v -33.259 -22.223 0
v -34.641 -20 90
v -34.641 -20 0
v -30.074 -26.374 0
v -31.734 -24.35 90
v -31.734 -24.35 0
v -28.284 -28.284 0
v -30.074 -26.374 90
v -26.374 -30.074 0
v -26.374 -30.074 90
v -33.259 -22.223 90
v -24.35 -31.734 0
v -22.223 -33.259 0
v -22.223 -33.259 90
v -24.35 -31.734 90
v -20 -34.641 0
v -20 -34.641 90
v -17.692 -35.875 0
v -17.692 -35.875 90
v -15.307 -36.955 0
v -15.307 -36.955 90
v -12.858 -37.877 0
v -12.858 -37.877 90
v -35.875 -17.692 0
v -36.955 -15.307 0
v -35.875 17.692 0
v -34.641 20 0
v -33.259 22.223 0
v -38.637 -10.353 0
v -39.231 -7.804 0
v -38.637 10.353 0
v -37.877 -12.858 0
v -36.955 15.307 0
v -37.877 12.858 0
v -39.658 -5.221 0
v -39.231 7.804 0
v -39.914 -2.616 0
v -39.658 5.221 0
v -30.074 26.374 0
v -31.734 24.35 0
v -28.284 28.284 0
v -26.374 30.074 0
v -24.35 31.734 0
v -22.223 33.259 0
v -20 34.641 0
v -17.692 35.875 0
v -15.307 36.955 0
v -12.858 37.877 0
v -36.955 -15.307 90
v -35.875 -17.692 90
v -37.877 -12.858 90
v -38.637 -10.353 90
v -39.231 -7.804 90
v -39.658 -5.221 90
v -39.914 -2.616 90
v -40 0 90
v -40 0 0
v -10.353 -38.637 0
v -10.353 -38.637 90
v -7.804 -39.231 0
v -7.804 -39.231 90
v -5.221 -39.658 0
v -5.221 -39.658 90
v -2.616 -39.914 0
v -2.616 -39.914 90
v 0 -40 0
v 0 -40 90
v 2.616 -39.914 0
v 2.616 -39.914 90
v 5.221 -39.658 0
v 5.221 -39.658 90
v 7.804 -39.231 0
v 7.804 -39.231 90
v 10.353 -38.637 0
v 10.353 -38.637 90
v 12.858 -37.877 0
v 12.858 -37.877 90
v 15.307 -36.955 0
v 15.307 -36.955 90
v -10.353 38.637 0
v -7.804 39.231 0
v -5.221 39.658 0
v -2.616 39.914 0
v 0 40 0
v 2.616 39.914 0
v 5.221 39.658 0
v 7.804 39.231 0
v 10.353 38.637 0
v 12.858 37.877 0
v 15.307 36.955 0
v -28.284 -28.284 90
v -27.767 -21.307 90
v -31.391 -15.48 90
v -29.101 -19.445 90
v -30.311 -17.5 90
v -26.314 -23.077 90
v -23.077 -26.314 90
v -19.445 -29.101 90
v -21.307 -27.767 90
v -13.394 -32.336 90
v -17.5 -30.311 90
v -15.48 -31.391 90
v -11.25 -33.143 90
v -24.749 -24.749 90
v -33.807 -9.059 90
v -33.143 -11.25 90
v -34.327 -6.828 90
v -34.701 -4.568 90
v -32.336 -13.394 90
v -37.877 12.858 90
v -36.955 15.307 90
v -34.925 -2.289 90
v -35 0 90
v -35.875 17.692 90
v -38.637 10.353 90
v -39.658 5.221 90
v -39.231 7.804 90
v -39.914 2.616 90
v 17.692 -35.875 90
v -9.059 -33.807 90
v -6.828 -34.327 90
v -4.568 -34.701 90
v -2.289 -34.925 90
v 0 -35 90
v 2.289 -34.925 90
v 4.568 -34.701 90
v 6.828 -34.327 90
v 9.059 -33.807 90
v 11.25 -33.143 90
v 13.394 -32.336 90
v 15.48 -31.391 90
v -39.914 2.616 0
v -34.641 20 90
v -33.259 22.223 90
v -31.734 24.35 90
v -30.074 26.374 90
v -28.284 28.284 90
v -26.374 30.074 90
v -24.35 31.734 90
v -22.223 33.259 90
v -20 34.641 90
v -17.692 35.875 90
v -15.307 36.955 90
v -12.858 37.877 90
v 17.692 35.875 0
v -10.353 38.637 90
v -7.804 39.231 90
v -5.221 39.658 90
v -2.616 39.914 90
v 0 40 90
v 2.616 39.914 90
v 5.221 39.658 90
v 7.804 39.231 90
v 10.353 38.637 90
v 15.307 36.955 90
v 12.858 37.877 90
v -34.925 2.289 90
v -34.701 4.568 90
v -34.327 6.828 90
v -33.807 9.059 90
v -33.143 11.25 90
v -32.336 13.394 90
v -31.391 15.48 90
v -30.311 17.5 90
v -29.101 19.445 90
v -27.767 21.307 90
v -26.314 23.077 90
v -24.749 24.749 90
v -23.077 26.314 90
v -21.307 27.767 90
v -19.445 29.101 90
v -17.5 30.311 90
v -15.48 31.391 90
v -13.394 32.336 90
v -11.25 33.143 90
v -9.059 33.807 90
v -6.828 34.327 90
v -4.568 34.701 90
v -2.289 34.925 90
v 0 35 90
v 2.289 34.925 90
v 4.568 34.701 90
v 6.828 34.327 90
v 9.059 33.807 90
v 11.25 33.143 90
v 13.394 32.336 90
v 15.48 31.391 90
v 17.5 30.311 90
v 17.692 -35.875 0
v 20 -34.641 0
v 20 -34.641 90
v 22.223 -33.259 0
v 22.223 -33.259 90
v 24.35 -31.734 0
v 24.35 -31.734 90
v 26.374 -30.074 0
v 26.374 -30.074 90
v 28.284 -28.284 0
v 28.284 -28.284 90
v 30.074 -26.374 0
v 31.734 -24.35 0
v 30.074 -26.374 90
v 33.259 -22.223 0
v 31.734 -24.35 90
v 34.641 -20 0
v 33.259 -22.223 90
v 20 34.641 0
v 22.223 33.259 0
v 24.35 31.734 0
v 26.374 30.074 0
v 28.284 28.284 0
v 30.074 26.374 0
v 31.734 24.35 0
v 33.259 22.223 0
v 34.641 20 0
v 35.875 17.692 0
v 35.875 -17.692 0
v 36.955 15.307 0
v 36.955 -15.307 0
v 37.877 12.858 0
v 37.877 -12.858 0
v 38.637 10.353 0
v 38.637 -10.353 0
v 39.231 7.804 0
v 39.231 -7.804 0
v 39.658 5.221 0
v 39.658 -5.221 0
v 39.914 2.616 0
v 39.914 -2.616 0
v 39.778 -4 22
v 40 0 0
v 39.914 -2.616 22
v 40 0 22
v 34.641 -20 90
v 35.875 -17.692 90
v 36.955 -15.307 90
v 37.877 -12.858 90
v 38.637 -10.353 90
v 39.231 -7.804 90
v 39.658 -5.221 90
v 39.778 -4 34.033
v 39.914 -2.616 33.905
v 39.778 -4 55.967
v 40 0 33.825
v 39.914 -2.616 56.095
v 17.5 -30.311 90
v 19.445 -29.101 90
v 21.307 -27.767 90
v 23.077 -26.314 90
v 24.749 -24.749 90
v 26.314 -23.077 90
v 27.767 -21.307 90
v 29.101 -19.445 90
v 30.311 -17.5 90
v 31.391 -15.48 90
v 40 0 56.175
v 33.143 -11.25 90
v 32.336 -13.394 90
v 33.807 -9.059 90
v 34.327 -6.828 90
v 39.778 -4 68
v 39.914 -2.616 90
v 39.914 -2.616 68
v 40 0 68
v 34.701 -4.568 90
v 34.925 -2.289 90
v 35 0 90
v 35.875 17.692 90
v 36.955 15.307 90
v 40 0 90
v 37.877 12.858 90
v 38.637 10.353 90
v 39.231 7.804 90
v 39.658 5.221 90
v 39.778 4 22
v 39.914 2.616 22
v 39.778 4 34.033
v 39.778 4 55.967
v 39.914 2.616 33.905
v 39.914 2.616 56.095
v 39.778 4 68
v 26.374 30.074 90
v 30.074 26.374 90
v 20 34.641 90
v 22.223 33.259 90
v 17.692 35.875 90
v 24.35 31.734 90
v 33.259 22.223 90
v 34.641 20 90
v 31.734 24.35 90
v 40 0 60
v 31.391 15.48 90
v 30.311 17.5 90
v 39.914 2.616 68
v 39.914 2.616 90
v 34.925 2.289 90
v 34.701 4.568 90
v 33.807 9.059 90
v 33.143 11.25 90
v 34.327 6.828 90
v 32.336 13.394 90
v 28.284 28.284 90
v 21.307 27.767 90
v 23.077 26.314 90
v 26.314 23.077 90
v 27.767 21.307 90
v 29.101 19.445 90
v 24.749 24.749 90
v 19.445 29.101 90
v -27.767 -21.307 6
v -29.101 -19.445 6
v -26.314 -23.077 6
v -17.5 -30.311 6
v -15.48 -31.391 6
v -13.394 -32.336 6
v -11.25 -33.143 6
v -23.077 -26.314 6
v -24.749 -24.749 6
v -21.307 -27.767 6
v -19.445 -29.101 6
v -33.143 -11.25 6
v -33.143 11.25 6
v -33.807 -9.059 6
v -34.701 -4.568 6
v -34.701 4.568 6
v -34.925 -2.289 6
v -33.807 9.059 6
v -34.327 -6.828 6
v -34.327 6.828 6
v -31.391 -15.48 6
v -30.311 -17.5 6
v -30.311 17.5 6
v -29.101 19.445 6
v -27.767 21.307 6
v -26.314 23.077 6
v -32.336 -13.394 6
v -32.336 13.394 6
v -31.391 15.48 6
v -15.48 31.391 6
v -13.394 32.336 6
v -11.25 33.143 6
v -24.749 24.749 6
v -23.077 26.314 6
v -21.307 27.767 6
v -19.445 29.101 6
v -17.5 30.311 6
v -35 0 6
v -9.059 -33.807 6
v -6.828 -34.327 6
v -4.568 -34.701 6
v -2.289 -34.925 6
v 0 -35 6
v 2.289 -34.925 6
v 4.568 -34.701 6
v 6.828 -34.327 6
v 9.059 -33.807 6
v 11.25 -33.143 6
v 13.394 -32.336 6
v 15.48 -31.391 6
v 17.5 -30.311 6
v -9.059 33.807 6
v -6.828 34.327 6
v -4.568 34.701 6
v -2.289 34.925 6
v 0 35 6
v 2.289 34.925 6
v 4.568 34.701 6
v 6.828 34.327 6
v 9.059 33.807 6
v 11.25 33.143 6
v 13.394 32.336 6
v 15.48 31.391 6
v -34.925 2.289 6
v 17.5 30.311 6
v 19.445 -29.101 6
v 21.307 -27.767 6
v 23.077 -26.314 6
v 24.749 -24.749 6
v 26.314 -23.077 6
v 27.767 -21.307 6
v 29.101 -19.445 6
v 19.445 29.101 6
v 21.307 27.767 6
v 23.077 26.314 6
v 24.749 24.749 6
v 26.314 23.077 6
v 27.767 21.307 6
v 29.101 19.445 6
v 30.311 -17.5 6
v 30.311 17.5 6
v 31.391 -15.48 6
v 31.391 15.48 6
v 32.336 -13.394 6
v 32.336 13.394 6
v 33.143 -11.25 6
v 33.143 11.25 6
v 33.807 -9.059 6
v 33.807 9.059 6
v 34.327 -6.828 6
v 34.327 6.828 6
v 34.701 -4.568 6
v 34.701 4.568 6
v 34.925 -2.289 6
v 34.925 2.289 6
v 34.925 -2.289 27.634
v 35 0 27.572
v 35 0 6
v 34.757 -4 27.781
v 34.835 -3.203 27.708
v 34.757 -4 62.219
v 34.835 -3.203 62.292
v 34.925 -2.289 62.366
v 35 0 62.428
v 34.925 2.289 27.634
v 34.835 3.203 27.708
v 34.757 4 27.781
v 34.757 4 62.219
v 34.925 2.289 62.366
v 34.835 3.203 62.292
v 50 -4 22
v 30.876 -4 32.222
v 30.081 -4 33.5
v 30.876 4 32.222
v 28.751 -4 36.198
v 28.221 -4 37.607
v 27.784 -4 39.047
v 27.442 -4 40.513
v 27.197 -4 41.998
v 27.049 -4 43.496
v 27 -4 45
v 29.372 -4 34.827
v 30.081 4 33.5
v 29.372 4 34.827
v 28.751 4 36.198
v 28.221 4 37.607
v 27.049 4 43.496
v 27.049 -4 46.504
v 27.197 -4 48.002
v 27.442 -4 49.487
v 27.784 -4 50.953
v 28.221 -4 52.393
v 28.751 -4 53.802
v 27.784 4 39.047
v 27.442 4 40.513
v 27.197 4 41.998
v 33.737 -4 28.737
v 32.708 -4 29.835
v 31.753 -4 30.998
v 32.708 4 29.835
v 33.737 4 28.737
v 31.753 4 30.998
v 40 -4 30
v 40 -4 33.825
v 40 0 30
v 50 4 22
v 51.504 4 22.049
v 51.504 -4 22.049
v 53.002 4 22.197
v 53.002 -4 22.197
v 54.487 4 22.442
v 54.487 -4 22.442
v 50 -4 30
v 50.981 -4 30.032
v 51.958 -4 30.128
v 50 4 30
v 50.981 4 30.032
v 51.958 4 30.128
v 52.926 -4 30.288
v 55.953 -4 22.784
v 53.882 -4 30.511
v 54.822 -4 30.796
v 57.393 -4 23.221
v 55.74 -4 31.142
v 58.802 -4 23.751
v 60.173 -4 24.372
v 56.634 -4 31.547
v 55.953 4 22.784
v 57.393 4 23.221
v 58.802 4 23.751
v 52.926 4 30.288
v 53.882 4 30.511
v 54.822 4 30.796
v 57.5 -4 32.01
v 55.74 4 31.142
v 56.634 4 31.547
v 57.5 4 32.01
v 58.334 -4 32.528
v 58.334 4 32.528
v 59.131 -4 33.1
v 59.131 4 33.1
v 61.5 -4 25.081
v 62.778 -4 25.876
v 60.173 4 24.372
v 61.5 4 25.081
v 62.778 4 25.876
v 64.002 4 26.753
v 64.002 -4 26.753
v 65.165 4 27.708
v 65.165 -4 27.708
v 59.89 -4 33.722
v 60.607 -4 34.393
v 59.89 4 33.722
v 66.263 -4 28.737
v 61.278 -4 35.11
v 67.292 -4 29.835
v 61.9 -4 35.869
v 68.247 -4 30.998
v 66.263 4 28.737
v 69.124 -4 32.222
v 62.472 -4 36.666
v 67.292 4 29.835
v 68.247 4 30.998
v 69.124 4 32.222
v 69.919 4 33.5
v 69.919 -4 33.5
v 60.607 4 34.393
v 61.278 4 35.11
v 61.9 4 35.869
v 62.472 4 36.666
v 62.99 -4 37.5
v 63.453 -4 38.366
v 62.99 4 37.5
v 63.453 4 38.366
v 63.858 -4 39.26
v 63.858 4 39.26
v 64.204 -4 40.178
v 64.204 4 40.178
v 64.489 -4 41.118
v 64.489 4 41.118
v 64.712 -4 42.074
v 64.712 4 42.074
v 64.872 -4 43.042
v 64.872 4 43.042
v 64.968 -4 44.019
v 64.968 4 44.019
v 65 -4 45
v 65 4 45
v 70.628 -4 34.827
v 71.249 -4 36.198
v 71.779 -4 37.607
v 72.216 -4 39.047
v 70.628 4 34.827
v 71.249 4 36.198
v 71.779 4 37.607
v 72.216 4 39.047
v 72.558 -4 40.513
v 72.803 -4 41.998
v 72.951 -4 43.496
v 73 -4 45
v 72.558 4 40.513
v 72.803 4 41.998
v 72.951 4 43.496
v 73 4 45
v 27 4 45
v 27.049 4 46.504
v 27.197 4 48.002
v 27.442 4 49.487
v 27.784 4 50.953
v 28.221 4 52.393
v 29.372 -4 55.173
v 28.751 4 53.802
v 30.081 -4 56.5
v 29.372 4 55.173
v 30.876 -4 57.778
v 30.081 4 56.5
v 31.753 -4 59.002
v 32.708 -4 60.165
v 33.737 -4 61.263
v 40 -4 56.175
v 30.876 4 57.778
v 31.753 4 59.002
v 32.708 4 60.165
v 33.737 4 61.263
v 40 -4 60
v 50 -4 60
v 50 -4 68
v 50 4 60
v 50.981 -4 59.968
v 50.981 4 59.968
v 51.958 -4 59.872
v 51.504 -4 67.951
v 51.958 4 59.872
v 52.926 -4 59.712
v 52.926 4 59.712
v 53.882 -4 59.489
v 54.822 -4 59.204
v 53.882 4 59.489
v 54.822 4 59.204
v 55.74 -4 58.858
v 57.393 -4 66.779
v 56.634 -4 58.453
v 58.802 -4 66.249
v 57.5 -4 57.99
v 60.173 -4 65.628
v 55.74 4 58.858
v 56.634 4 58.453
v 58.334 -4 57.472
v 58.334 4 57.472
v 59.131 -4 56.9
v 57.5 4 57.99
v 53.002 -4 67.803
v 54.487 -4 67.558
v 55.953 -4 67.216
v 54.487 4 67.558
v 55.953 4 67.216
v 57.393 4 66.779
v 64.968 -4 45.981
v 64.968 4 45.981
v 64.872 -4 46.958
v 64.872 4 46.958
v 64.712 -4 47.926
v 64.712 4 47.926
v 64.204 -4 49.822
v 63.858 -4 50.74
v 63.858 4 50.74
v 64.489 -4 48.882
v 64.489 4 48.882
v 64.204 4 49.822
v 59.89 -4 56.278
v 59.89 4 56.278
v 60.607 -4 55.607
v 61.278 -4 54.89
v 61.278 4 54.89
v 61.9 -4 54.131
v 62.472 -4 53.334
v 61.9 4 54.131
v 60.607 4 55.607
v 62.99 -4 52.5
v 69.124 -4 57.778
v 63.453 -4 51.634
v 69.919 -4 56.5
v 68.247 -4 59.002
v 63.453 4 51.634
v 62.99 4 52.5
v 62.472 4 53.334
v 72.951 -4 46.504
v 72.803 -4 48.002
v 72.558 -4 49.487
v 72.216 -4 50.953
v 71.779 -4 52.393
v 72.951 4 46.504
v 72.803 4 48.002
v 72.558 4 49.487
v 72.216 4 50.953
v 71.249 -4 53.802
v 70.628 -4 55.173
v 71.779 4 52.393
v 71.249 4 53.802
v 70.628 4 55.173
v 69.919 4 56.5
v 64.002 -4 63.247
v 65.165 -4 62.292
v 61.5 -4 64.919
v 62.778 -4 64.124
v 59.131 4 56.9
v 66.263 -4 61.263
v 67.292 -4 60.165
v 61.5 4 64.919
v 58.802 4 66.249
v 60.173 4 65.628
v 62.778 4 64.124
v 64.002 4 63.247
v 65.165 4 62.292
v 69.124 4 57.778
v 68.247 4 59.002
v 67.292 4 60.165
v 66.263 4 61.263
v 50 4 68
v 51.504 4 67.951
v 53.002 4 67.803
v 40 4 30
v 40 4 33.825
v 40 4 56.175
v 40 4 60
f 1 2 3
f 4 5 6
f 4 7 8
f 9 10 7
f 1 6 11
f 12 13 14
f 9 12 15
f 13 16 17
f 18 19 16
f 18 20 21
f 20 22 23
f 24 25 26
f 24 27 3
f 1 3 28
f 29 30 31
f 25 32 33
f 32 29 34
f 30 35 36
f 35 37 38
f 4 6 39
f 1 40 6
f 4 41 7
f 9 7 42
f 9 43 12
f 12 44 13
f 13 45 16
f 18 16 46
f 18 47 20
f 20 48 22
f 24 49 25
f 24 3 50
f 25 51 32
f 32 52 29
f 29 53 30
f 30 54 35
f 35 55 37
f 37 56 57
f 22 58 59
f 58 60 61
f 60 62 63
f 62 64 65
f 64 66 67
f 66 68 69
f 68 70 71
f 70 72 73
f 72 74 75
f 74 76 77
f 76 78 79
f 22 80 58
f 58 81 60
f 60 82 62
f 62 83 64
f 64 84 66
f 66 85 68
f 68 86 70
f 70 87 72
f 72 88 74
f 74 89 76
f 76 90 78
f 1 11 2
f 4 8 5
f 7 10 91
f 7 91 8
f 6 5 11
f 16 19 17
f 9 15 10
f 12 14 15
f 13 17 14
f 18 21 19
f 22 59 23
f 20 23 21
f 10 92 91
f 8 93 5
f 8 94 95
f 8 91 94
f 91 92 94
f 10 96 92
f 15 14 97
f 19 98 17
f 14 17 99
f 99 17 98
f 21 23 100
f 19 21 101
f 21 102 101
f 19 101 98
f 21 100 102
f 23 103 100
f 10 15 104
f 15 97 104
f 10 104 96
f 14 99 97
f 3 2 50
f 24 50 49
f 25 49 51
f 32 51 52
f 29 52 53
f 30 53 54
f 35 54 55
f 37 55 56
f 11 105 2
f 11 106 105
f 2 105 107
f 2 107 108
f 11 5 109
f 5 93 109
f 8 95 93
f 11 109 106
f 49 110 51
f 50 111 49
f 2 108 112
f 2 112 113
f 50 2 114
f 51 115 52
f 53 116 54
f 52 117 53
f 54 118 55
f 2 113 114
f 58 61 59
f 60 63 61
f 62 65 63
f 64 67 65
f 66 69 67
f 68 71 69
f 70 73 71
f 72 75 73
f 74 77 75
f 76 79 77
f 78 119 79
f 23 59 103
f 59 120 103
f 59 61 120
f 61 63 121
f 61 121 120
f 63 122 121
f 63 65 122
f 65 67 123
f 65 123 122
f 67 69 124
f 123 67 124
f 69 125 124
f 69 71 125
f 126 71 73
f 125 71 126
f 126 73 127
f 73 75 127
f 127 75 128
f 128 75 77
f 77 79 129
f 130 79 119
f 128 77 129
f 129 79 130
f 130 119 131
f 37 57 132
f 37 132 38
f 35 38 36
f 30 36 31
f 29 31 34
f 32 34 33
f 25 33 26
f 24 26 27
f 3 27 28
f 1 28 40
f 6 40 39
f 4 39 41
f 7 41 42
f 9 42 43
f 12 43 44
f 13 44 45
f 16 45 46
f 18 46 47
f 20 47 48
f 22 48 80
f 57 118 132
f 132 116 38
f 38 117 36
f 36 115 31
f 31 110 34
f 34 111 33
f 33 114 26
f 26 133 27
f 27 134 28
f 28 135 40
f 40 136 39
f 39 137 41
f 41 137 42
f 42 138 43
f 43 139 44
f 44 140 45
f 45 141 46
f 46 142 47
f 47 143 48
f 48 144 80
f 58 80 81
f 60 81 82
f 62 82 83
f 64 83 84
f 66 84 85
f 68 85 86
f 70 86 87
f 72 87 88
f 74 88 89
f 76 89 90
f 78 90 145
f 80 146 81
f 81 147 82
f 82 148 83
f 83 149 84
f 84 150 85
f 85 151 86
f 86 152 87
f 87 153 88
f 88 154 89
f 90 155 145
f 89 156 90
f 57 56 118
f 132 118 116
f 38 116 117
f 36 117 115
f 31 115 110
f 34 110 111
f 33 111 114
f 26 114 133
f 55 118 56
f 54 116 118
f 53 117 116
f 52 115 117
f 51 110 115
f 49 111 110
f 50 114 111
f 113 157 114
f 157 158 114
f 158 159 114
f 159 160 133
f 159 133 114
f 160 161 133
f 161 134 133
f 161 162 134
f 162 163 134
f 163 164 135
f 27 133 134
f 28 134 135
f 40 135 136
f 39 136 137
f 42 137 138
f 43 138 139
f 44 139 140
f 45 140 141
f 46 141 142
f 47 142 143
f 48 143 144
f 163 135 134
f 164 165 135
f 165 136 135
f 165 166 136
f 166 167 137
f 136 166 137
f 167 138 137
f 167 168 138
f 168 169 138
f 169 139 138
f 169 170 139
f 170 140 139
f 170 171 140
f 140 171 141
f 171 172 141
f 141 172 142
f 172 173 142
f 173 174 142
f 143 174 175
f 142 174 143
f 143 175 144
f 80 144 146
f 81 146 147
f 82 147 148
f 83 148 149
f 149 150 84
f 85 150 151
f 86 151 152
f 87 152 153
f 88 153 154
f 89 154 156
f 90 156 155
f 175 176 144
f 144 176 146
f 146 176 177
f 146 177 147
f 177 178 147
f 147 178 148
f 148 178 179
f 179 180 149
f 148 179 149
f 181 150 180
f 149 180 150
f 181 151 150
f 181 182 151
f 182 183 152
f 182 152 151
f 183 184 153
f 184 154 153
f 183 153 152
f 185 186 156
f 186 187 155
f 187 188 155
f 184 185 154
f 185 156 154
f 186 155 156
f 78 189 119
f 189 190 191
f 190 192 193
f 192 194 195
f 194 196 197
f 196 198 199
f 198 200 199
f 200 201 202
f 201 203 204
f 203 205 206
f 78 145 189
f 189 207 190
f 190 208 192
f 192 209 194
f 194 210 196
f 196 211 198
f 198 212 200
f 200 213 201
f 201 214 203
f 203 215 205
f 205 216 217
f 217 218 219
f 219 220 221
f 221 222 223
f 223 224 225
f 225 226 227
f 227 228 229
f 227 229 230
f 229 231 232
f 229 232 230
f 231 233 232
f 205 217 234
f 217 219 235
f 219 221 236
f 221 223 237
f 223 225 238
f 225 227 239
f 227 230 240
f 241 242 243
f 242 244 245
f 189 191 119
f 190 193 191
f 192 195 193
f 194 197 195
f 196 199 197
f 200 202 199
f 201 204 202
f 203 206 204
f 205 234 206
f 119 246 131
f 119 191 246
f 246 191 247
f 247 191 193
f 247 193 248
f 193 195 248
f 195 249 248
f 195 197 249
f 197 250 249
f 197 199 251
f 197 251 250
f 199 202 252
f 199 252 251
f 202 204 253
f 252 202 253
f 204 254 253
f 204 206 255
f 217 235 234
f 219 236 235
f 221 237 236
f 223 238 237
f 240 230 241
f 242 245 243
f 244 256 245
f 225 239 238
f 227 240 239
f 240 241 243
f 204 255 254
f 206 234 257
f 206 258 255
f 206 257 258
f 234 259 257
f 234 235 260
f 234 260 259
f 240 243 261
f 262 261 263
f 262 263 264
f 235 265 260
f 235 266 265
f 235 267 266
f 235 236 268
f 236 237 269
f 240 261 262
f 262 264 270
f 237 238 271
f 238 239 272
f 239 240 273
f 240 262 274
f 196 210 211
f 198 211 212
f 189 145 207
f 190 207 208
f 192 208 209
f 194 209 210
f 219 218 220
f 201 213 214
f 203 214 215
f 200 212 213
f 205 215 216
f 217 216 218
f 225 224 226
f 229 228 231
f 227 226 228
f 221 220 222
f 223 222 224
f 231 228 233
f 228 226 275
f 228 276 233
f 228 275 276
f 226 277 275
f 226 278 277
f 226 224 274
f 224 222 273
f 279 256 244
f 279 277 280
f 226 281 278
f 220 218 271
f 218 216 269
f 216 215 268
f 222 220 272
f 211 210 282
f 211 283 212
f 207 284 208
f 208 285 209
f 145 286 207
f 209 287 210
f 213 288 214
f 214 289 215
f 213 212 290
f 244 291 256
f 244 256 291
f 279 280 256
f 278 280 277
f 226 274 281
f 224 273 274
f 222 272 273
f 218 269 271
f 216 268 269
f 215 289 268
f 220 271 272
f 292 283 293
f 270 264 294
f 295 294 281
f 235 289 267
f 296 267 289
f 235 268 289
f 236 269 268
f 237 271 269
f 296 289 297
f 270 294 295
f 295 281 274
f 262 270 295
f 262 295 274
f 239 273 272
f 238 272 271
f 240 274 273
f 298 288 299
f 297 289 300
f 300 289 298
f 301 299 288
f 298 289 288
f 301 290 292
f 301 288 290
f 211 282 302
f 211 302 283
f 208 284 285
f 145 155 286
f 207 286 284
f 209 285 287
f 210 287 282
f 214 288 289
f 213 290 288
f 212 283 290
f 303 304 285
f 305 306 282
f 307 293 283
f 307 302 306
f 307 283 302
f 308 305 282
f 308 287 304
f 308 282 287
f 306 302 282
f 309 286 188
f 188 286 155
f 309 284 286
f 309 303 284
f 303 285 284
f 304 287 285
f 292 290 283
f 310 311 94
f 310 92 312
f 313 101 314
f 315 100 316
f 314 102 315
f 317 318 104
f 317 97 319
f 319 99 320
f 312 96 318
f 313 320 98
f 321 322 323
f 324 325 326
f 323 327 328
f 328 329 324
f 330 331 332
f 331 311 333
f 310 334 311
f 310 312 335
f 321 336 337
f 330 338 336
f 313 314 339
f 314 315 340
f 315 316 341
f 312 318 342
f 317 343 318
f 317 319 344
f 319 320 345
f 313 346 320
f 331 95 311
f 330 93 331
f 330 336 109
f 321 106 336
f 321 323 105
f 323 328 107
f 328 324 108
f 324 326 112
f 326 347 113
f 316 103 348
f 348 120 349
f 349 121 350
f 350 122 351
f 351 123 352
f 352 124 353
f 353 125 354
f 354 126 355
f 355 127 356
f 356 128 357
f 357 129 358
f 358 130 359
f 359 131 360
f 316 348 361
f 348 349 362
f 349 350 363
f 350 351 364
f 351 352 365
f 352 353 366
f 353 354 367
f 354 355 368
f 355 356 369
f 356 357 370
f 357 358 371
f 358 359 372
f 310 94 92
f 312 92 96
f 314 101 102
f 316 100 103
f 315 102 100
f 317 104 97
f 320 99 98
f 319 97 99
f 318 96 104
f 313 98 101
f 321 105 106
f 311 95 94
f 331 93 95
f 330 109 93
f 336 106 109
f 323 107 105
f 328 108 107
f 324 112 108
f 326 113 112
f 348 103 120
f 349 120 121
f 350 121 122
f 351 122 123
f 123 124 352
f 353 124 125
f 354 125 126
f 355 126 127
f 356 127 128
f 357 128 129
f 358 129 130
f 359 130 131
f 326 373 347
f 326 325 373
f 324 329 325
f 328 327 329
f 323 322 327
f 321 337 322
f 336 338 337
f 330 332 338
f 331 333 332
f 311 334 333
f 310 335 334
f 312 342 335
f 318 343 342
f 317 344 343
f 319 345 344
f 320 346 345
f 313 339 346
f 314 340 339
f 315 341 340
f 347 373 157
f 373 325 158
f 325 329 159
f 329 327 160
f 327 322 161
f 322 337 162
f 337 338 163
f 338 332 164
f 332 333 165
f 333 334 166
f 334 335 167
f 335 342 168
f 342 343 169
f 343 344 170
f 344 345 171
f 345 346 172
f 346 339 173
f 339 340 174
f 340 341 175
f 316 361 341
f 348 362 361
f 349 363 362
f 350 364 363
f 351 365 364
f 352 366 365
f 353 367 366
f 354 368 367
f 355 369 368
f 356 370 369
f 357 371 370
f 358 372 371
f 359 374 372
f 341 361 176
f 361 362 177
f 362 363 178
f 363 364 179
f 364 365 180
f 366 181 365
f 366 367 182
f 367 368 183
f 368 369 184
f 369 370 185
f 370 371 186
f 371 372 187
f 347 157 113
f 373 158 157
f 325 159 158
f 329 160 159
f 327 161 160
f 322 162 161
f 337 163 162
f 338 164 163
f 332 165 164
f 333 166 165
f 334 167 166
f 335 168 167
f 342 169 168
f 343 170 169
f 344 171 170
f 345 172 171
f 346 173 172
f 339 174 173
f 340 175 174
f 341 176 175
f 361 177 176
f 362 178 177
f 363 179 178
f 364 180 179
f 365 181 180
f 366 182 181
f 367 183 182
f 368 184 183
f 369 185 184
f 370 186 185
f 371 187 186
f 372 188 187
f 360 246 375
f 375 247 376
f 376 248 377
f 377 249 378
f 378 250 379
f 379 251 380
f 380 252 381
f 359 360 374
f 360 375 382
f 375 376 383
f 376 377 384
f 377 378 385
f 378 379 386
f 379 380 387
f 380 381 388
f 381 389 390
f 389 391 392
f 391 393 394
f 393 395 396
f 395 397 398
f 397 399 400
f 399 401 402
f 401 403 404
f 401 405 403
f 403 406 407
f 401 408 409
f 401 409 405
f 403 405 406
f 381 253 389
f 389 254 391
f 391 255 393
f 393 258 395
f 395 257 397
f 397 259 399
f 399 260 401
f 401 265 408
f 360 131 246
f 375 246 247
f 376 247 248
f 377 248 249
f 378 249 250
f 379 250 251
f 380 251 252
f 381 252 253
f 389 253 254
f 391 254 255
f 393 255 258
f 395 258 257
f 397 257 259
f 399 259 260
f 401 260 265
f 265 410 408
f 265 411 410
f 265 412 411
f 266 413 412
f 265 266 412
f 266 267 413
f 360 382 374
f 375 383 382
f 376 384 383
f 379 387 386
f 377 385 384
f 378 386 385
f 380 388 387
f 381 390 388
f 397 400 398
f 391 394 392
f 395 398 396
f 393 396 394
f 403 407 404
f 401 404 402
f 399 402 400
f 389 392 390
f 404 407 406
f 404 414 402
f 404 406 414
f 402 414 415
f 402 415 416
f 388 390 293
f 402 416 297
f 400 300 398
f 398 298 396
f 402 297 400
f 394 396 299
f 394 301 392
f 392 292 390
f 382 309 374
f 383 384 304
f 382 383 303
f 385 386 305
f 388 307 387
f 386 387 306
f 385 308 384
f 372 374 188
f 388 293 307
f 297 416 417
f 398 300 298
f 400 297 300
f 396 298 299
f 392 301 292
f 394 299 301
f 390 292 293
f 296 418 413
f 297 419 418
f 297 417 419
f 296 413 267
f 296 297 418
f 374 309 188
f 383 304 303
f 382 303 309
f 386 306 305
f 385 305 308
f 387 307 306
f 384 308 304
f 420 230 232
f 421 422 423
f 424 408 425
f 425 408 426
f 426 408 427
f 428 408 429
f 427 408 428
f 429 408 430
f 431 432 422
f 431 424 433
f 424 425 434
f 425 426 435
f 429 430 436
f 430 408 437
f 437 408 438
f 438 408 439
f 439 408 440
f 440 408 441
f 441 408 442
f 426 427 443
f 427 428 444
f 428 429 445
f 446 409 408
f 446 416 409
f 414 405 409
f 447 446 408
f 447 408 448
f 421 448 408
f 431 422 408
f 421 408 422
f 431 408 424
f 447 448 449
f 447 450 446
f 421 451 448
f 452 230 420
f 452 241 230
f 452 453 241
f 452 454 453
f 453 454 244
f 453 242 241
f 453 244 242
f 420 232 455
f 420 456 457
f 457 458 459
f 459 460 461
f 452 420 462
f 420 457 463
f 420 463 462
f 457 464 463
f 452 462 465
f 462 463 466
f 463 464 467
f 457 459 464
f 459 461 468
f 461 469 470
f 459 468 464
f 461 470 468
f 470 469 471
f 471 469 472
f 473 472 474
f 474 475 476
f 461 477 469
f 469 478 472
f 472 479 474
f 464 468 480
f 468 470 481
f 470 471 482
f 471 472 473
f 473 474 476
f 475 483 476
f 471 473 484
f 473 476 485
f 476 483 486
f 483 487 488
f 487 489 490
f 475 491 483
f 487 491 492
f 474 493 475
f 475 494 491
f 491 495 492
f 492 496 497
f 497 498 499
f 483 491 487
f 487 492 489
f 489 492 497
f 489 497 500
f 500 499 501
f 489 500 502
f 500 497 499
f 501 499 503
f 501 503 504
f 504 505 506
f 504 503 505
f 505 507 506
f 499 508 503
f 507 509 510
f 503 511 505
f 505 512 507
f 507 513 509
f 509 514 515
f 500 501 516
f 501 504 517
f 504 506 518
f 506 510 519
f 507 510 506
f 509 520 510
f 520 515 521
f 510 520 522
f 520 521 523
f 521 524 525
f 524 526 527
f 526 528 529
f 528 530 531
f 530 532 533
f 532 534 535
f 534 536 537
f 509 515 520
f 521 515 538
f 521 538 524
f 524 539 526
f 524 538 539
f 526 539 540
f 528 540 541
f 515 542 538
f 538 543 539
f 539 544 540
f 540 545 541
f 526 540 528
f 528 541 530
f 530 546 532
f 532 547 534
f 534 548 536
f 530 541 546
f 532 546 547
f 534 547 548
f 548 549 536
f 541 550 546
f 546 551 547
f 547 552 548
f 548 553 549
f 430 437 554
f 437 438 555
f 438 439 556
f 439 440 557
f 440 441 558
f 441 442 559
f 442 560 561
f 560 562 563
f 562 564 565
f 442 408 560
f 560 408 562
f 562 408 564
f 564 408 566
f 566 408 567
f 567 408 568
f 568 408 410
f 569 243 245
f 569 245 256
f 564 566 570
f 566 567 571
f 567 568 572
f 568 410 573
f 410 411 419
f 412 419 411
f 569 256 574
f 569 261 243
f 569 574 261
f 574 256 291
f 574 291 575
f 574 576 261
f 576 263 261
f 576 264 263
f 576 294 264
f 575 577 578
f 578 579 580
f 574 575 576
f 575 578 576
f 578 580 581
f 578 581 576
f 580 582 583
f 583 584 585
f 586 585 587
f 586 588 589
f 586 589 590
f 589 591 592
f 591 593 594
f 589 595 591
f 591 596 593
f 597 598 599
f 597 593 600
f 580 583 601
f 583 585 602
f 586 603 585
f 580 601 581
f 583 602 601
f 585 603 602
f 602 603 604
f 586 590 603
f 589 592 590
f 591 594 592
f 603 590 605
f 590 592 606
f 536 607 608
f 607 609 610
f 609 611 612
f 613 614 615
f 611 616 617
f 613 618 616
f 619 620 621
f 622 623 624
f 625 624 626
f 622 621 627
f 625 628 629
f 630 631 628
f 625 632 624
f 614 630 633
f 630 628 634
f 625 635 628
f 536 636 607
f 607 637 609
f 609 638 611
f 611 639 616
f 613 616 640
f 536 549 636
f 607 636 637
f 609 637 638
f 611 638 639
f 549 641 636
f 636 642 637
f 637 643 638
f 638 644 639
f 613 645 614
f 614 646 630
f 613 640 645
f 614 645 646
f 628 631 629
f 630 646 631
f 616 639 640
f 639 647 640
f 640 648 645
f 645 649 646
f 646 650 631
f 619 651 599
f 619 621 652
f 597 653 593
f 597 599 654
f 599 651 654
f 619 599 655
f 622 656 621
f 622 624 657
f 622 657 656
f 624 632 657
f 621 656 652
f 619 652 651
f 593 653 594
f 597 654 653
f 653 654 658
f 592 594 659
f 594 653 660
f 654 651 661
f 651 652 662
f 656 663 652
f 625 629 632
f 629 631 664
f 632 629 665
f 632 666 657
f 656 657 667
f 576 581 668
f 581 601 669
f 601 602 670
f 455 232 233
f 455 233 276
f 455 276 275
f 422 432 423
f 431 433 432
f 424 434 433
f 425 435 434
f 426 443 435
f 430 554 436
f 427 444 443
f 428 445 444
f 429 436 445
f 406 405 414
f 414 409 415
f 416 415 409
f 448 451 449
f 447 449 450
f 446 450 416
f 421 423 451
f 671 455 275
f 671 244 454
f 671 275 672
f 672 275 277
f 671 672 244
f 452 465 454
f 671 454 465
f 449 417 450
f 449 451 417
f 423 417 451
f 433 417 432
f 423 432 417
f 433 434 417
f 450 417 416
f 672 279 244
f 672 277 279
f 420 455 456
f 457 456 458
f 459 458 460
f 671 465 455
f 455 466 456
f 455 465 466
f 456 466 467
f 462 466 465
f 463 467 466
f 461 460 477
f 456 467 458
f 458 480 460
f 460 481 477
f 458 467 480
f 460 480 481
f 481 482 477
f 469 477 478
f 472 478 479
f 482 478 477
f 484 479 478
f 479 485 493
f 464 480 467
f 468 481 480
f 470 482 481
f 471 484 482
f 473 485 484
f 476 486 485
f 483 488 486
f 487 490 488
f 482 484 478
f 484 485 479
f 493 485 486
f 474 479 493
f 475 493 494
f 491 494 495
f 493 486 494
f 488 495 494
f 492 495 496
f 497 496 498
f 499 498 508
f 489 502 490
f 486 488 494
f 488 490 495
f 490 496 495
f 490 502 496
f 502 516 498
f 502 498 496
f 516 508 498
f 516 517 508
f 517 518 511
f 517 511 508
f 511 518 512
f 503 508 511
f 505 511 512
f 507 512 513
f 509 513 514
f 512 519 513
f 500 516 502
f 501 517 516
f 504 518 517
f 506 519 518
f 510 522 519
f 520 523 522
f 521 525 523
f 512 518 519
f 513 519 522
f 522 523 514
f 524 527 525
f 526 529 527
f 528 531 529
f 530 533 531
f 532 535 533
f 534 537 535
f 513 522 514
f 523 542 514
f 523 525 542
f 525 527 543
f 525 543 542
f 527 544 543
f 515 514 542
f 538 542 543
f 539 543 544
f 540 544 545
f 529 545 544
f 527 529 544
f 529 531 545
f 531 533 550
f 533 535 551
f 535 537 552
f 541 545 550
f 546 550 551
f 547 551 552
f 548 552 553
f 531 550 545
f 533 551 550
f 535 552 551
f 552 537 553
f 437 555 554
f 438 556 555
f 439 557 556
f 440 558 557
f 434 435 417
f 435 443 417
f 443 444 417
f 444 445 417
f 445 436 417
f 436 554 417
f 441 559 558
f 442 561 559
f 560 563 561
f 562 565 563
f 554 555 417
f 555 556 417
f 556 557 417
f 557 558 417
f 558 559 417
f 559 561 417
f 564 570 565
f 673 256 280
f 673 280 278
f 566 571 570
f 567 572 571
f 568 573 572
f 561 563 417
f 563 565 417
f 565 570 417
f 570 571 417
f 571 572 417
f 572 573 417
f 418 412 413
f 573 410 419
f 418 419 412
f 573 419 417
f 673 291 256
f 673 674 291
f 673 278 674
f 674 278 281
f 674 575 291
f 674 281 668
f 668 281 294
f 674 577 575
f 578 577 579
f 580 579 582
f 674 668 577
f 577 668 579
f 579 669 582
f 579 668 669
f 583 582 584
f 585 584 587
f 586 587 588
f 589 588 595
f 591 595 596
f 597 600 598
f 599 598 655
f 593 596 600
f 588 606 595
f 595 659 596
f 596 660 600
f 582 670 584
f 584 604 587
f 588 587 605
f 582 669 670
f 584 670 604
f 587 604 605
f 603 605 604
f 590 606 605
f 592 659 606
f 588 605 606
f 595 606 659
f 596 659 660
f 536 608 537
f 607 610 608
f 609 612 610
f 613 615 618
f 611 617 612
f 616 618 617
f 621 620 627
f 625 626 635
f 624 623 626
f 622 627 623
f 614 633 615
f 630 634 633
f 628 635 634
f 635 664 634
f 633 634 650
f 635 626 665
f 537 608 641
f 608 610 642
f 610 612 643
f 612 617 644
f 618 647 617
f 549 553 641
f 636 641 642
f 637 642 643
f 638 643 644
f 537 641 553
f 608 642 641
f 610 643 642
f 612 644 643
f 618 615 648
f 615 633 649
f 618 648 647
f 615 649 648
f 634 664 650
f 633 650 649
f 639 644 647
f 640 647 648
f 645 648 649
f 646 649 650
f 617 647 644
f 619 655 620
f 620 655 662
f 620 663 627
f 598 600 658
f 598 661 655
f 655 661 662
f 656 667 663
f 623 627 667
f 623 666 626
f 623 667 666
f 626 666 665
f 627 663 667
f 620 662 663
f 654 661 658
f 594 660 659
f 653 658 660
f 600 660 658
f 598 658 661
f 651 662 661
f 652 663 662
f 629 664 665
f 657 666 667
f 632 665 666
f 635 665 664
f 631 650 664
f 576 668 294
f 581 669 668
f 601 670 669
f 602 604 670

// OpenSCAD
// =============================
// マグカップ(取手は +X 方向のみ)
// =============================
$fn = 96;

// ---- 本体パラメータ ----
outer_d  = 80;   // 外径
inner_d  = 70;   // 内径(肉厚 5mm)
mug_h    = 90;   // 高さ
bottom_t = 6;    // 底面厚み

// ---- 取手パラメータ ----
handle_in_w  = 25;  // 取手内側の幅(X方向の指スペース)
handle_in_h  = 30;  // 取手内側の高さ(Z方向の指スペース)
handle_t     = 8;   // 取手の断面厚み
handle_depth = 8;   // 取手の奥行き(Y方向)
embed        = 5;   // 本体壁への食い込み量(マニフォールド確保)

// D字形状(平らな辺が x=0 側、外側が半円)
module d_shape(w, h, ext = 0) {
    r = h / 2;
    union() {
        // 本体側の直線部(extぶん壁に食い込ませる)
        translate([-ext, -r]) square([w - r + ext, h]);
        // 外側の半円部
        translate([w - r, 0]) circle(r);
    }
}

// 取手(XZ平面上のD字リングをY方向に厚み付け)
module handle() {
    rotate([90, 0, 0])
        linear_extrude(height = handle_depth, center = true)
            difference() {
                // 外側Dシェイプ(壁に食い込む延長付き)
                d_shape(handle_in_w + handle_t,
                        handle_in_h + 2 * handle_t,
                        embed);
                // 内側Dシェイプ(指の入る空間 30 x 25)
                d_shape(handle_in_w, handle_in_h);
            }
}

// ---- 組み立て ----
union() {
    // 本体:円筒から内側をくり抜く(底厚 6mm を残す)
    difference() {
        cylinder(h = mug_h, d = outer_d);
        translate([0, 0, bottom_t])
            cylinder(h = mug_h, d = inner_d);
    }

    // 取手:+X 側面、高さ方向の中央に配置
    translate([outer_d / 2, 0, mug_h / 2])
        handle();
}
